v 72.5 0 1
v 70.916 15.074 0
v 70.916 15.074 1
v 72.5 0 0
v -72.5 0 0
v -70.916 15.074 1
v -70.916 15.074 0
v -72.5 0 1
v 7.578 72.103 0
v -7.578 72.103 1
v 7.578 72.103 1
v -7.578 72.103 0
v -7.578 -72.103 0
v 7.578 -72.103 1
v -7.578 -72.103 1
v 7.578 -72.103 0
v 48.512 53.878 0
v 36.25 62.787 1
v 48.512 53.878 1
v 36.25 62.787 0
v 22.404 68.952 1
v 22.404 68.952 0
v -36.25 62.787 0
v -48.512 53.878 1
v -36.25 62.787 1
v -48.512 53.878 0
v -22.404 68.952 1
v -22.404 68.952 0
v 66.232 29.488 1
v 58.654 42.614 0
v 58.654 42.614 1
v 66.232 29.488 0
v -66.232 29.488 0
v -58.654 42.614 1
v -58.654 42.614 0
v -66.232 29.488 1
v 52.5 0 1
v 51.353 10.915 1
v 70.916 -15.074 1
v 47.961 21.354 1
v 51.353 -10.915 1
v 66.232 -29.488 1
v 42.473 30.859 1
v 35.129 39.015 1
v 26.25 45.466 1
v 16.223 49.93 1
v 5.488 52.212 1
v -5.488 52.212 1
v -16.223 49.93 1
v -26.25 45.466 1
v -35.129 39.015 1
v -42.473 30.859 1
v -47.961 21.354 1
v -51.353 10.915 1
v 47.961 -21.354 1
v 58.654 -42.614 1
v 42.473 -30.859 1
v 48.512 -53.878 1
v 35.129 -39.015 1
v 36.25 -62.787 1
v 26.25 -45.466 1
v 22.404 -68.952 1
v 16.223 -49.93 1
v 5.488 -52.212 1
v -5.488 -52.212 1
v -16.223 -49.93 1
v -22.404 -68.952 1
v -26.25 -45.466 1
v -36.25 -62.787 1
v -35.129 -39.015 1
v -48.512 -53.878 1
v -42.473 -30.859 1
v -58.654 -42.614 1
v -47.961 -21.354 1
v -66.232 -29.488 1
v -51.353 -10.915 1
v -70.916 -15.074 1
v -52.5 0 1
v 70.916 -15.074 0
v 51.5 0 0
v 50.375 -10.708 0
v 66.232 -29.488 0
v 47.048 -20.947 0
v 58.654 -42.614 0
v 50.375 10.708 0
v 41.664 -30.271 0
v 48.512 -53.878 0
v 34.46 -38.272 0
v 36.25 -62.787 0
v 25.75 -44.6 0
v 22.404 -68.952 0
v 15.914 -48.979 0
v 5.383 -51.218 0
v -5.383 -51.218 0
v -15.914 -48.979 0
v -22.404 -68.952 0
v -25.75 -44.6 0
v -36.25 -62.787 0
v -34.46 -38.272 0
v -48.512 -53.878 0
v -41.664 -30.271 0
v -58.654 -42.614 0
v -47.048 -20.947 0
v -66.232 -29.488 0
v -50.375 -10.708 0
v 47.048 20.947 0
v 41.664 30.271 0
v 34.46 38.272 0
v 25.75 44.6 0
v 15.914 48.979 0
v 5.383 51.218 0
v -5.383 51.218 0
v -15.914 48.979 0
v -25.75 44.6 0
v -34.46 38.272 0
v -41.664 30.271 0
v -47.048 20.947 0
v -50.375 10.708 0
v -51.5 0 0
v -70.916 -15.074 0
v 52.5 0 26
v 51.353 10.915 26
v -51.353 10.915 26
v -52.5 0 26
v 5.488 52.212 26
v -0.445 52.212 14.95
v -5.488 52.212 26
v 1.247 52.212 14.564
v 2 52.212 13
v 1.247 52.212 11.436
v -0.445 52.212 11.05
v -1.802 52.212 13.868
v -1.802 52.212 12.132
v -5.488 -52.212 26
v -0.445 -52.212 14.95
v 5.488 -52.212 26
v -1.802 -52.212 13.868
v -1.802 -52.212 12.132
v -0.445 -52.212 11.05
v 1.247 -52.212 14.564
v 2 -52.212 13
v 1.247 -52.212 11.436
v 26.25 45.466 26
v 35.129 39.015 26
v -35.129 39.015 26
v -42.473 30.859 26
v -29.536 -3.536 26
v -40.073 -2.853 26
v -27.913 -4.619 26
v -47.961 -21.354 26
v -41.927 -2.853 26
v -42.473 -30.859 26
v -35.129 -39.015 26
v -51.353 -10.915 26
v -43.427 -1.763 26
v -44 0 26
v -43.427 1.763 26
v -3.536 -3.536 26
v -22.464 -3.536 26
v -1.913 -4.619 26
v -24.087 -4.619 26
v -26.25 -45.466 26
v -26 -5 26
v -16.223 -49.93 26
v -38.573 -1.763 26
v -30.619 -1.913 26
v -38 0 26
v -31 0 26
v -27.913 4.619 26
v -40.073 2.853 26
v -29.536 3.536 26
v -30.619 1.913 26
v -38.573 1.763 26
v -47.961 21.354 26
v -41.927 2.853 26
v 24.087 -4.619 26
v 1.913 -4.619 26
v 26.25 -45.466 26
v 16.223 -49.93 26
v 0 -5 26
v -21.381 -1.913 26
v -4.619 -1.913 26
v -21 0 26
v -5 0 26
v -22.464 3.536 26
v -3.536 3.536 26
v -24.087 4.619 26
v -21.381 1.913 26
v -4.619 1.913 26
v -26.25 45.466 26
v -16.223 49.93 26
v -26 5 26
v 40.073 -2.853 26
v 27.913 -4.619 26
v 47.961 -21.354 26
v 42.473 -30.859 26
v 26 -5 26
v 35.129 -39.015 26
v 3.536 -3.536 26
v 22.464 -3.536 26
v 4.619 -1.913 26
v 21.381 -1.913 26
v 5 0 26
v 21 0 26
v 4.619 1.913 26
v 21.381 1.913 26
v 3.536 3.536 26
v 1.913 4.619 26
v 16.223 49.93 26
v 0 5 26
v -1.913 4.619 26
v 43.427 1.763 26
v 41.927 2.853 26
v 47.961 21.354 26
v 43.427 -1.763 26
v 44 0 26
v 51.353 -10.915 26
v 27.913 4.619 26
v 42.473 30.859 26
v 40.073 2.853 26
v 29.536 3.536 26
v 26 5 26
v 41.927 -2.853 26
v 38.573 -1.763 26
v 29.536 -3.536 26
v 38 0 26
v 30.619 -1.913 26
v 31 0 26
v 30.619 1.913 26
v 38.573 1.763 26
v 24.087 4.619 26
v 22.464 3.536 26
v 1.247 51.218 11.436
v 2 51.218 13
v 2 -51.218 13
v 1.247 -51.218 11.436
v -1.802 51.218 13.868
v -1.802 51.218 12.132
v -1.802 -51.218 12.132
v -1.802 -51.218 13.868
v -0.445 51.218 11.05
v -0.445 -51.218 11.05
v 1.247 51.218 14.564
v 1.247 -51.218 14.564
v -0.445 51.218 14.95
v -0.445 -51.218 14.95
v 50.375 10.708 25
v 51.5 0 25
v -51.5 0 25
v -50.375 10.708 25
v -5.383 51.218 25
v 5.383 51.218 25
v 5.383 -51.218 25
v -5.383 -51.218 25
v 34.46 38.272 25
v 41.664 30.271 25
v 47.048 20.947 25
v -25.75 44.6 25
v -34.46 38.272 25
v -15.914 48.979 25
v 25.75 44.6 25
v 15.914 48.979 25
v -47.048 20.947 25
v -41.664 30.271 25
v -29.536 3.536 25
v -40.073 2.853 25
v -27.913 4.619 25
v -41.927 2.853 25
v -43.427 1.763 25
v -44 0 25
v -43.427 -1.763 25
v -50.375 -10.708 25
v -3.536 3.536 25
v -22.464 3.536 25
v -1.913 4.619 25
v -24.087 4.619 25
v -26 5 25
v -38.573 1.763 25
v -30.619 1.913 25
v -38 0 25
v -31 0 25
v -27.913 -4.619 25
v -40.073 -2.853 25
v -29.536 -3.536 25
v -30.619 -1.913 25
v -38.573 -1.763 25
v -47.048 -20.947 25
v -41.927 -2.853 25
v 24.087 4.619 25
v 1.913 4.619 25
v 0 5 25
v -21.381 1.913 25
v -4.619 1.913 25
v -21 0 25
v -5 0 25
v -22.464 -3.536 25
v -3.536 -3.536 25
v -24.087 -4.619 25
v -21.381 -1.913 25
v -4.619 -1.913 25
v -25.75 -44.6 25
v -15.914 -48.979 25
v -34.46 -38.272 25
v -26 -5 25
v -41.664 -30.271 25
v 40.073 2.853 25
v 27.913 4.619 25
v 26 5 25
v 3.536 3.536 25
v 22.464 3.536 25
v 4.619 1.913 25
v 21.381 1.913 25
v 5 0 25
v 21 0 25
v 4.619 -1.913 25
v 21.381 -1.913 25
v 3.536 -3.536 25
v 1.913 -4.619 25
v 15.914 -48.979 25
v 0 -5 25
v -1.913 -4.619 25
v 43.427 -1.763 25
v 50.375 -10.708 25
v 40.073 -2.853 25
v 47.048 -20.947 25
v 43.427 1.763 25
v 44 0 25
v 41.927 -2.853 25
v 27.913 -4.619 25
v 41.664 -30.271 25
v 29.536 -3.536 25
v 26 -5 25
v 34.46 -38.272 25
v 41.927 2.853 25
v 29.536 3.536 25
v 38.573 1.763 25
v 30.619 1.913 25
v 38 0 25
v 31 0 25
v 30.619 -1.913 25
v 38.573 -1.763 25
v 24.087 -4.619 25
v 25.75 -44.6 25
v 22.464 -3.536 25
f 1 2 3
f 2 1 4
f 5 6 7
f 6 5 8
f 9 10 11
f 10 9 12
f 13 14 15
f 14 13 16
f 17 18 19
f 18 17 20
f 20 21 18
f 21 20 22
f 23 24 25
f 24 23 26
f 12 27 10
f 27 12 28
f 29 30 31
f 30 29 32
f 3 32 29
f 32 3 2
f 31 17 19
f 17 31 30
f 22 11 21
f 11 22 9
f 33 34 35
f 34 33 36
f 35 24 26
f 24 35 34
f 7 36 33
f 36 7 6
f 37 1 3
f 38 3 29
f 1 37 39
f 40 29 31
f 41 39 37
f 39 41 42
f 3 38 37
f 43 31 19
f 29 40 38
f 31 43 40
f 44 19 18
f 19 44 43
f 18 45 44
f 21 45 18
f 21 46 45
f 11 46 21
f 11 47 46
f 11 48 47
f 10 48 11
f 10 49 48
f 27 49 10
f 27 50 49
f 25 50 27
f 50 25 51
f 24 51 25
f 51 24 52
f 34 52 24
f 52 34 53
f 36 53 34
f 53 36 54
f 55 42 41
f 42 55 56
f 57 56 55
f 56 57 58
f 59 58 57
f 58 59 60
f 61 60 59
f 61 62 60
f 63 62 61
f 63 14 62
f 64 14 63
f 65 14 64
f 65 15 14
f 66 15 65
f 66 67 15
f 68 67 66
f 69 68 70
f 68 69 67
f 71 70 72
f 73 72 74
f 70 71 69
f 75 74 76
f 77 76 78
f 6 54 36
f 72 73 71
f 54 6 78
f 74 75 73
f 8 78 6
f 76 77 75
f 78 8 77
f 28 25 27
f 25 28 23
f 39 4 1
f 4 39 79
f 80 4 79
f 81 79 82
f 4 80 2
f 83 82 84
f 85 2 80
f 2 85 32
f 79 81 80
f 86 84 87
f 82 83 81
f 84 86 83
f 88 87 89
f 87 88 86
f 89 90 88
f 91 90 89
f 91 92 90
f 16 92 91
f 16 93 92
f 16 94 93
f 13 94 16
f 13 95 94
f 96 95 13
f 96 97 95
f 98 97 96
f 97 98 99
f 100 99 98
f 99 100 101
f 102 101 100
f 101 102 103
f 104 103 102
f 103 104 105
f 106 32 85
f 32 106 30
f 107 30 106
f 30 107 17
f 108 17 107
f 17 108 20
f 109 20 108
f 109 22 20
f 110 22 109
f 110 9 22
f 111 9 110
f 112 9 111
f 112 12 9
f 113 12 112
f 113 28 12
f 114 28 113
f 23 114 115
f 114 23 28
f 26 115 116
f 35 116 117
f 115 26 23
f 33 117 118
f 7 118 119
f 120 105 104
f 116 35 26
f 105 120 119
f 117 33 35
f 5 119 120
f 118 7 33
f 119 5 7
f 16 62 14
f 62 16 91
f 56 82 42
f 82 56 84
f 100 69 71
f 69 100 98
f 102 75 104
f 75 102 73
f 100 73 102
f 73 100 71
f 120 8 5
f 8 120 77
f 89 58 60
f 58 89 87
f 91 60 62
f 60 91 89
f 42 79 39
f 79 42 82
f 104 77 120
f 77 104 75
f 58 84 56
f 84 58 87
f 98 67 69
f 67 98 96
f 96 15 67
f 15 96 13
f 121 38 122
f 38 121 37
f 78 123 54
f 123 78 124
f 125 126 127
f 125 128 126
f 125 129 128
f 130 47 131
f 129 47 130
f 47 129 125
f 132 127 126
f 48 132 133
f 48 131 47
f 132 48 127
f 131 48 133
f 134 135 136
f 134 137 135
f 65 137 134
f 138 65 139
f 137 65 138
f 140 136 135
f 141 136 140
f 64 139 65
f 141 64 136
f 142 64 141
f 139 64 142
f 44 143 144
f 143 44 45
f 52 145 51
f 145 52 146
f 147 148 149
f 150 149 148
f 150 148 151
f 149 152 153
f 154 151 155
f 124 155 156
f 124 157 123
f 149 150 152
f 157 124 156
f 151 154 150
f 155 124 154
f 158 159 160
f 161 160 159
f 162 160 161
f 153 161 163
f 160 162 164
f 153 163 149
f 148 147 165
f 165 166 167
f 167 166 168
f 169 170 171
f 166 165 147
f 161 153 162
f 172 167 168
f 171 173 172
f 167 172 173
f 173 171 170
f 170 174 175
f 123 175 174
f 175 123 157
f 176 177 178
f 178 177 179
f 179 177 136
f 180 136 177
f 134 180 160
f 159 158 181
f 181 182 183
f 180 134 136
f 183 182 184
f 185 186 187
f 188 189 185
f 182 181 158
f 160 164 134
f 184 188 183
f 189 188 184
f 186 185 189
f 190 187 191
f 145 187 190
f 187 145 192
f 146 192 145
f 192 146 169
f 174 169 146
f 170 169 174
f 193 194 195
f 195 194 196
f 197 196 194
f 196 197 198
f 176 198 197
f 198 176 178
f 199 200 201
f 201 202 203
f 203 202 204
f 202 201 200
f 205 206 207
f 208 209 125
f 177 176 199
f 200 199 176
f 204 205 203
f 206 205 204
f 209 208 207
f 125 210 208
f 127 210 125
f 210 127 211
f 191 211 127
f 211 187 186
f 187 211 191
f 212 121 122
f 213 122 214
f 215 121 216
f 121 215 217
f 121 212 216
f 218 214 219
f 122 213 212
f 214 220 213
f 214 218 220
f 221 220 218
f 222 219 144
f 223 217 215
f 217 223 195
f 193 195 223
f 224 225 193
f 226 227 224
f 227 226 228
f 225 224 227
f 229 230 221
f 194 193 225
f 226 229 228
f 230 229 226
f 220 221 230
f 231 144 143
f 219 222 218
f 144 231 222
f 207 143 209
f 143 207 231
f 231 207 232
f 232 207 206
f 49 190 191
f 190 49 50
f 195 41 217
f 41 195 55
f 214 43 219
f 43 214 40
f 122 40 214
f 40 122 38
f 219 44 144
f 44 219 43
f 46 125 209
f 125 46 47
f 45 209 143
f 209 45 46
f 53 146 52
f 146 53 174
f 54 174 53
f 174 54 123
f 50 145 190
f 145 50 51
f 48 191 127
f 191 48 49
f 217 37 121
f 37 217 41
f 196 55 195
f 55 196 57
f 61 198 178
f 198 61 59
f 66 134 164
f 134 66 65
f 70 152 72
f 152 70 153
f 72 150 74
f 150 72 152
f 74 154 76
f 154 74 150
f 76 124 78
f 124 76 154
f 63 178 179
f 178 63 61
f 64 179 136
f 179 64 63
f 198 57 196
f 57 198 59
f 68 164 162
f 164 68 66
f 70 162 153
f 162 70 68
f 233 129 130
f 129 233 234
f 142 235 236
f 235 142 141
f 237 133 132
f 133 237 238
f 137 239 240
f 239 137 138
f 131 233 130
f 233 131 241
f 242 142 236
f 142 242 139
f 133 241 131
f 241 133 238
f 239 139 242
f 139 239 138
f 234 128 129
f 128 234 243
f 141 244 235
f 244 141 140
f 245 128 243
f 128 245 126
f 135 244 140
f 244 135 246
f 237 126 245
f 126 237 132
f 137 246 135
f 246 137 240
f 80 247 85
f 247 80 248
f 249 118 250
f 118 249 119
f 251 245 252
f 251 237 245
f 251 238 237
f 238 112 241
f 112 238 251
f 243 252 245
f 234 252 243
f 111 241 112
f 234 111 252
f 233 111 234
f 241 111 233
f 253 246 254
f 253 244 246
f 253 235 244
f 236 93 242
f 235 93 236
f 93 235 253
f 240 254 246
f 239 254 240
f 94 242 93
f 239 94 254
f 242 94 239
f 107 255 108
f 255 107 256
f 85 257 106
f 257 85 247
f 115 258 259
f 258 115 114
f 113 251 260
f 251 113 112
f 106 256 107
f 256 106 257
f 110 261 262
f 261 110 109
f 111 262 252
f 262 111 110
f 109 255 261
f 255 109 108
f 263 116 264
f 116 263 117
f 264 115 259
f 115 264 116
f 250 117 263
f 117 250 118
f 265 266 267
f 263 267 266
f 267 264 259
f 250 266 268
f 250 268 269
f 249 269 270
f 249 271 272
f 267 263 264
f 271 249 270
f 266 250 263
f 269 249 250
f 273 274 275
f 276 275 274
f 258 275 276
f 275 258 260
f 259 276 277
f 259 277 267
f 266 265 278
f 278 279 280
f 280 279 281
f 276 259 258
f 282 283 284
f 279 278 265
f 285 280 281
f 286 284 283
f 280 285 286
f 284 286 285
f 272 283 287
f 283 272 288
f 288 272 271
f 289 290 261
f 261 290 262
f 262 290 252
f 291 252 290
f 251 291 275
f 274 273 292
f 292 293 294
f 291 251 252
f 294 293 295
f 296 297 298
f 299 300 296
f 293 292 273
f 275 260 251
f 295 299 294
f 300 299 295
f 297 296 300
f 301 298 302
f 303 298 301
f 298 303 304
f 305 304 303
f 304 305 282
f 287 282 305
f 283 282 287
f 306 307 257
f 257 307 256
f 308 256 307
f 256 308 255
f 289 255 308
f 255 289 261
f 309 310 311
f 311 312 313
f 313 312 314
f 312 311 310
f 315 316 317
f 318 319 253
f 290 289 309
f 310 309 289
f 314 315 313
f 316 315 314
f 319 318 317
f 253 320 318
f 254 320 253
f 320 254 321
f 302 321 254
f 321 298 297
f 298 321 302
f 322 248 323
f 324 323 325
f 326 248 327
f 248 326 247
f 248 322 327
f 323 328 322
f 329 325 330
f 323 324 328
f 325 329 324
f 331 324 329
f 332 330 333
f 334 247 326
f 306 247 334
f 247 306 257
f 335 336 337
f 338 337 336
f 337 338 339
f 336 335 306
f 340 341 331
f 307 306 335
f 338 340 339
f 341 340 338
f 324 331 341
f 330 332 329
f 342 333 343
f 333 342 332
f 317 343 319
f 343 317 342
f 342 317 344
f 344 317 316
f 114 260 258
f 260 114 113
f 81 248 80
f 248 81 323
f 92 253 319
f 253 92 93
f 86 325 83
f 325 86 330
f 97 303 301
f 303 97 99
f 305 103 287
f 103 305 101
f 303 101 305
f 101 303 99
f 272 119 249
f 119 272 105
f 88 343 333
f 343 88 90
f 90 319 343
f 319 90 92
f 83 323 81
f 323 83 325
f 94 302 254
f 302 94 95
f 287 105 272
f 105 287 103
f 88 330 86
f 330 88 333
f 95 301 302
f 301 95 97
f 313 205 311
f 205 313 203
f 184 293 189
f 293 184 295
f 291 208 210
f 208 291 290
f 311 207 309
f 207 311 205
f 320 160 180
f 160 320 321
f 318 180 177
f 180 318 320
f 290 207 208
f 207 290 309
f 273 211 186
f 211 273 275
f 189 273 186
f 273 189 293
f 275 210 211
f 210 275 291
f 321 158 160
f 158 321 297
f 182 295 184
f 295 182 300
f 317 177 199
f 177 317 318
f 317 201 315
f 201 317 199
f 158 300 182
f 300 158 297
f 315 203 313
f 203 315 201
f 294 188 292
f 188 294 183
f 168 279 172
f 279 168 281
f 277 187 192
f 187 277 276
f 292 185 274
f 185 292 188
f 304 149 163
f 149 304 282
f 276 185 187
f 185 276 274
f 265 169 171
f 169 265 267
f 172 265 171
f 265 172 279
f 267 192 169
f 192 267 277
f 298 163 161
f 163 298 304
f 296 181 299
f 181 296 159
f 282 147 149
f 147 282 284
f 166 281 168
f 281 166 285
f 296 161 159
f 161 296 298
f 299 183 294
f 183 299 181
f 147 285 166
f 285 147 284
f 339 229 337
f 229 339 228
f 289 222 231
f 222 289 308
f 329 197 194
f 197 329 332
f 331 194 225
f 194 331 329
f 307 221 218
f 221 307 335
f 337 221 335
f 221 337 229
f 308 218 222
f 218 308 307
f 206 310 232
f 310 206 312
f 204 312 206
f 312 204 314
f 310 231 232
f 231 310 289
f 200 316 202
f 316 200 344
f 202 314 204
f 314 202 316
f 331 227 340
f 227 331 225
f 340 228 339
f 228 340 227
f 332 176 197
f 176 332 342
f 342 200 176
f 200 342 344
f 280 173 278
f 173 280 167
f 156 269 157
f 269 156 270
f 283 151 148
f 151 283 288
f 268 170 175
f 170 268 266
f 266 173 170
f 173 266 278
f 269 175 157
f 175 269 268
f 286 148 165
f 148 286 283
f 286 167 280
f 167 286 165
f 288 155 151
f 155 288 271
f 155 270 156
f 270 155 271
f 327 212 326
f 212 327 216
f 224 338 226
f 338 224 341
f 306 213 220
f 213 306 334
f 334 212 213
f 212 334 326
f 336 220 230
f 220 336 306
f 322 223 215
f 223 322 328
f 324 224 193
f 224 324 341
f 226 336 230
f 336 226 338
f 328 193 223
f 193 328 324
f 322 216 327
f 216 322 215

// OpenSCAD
buiten_radius = 145 / 2;
binnen_radius = 105 / 2;
hobbel_hoogte = 26;
plaat_dikte = 1;
kabelgat_radius = 10 / 2;
ophanggat_radius = 6 / 2;
kabelgat_afstand = 26;
ophanggat_afstand = 41;
beugelgat_radius = 2;

difference()
{
    // Dekplaat.
    union()
    {
        cylinder(h = plaat_dikte, r = buiten_radius);
        cylinder(h = hobbel_hoogte, r = binnen_radius);
    }
    cylinder(h = hobbel_hoogte - plaat_dikte, r = binnen_radius - plaat_dikte);
    
    // Kabelgat links.
    cylinder(h = hobbel_hoogte, r = kabelgat_radius);
    
    // Kabelgat midden.
    translate([-kabelgat_afstand, 0, 0])
    {
        cylinder(h = hobbel_hoogte, r = kabelgat_radius);
    }
    
    // Kabelgat rechts.
    translate([kabelgat_afstand, 0, 0])
    {
        cylinder(h = hobbel_hoogte, r = kabelgat_radius);
    }
    
    // Ophanggat links.
    translate([-ophanggat_afstand, 0, 0])
    {
        cylinder(h = hobbel_hoogte, r = ophanggat_radius);
    }
    
    // Ophanggat_rechts.
    translate([ophanggat_afstand, 0, 0])
    {
        cylinder(h = hobbel_hoogte, r = ophanggat_radius);
    }
    
    // Schroefgaten ophang beugel.
    translate([0, 0, hobbel_hoogte / 2])
    {
        rotate([-90, 0, 0])
        {
            cylinder(h = buiten_radius, r = beugelgat_radius);
        }
        rotate([90, 0, 0])
        {
            cylinder(h = buiten_radius, r = beugelgat_radius);
        }
    }
    
    
    
}
